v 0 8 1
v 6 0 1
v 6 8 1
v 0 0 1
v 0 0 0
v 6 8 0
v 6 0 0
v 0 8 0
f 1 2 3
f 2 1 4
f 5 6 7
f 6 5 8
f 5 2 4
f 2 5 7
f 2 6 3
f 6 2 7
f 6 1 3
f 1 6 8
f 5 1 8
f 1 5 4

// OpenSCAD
/* Warning, this is a very basic generator with a lot of approximation 
input data : [VQFN, 5QC, 6x8x1.0mm, 40, , A, C04-25454A]
generated by com.zoubworld.electronics.cad.model3d.Basic
Date : Sun Feb 15 10:50:49 CET 2026
*/

//body
color("black")
translate([0,0,0])
cube([6.0,8.0,1.0], center=false);
